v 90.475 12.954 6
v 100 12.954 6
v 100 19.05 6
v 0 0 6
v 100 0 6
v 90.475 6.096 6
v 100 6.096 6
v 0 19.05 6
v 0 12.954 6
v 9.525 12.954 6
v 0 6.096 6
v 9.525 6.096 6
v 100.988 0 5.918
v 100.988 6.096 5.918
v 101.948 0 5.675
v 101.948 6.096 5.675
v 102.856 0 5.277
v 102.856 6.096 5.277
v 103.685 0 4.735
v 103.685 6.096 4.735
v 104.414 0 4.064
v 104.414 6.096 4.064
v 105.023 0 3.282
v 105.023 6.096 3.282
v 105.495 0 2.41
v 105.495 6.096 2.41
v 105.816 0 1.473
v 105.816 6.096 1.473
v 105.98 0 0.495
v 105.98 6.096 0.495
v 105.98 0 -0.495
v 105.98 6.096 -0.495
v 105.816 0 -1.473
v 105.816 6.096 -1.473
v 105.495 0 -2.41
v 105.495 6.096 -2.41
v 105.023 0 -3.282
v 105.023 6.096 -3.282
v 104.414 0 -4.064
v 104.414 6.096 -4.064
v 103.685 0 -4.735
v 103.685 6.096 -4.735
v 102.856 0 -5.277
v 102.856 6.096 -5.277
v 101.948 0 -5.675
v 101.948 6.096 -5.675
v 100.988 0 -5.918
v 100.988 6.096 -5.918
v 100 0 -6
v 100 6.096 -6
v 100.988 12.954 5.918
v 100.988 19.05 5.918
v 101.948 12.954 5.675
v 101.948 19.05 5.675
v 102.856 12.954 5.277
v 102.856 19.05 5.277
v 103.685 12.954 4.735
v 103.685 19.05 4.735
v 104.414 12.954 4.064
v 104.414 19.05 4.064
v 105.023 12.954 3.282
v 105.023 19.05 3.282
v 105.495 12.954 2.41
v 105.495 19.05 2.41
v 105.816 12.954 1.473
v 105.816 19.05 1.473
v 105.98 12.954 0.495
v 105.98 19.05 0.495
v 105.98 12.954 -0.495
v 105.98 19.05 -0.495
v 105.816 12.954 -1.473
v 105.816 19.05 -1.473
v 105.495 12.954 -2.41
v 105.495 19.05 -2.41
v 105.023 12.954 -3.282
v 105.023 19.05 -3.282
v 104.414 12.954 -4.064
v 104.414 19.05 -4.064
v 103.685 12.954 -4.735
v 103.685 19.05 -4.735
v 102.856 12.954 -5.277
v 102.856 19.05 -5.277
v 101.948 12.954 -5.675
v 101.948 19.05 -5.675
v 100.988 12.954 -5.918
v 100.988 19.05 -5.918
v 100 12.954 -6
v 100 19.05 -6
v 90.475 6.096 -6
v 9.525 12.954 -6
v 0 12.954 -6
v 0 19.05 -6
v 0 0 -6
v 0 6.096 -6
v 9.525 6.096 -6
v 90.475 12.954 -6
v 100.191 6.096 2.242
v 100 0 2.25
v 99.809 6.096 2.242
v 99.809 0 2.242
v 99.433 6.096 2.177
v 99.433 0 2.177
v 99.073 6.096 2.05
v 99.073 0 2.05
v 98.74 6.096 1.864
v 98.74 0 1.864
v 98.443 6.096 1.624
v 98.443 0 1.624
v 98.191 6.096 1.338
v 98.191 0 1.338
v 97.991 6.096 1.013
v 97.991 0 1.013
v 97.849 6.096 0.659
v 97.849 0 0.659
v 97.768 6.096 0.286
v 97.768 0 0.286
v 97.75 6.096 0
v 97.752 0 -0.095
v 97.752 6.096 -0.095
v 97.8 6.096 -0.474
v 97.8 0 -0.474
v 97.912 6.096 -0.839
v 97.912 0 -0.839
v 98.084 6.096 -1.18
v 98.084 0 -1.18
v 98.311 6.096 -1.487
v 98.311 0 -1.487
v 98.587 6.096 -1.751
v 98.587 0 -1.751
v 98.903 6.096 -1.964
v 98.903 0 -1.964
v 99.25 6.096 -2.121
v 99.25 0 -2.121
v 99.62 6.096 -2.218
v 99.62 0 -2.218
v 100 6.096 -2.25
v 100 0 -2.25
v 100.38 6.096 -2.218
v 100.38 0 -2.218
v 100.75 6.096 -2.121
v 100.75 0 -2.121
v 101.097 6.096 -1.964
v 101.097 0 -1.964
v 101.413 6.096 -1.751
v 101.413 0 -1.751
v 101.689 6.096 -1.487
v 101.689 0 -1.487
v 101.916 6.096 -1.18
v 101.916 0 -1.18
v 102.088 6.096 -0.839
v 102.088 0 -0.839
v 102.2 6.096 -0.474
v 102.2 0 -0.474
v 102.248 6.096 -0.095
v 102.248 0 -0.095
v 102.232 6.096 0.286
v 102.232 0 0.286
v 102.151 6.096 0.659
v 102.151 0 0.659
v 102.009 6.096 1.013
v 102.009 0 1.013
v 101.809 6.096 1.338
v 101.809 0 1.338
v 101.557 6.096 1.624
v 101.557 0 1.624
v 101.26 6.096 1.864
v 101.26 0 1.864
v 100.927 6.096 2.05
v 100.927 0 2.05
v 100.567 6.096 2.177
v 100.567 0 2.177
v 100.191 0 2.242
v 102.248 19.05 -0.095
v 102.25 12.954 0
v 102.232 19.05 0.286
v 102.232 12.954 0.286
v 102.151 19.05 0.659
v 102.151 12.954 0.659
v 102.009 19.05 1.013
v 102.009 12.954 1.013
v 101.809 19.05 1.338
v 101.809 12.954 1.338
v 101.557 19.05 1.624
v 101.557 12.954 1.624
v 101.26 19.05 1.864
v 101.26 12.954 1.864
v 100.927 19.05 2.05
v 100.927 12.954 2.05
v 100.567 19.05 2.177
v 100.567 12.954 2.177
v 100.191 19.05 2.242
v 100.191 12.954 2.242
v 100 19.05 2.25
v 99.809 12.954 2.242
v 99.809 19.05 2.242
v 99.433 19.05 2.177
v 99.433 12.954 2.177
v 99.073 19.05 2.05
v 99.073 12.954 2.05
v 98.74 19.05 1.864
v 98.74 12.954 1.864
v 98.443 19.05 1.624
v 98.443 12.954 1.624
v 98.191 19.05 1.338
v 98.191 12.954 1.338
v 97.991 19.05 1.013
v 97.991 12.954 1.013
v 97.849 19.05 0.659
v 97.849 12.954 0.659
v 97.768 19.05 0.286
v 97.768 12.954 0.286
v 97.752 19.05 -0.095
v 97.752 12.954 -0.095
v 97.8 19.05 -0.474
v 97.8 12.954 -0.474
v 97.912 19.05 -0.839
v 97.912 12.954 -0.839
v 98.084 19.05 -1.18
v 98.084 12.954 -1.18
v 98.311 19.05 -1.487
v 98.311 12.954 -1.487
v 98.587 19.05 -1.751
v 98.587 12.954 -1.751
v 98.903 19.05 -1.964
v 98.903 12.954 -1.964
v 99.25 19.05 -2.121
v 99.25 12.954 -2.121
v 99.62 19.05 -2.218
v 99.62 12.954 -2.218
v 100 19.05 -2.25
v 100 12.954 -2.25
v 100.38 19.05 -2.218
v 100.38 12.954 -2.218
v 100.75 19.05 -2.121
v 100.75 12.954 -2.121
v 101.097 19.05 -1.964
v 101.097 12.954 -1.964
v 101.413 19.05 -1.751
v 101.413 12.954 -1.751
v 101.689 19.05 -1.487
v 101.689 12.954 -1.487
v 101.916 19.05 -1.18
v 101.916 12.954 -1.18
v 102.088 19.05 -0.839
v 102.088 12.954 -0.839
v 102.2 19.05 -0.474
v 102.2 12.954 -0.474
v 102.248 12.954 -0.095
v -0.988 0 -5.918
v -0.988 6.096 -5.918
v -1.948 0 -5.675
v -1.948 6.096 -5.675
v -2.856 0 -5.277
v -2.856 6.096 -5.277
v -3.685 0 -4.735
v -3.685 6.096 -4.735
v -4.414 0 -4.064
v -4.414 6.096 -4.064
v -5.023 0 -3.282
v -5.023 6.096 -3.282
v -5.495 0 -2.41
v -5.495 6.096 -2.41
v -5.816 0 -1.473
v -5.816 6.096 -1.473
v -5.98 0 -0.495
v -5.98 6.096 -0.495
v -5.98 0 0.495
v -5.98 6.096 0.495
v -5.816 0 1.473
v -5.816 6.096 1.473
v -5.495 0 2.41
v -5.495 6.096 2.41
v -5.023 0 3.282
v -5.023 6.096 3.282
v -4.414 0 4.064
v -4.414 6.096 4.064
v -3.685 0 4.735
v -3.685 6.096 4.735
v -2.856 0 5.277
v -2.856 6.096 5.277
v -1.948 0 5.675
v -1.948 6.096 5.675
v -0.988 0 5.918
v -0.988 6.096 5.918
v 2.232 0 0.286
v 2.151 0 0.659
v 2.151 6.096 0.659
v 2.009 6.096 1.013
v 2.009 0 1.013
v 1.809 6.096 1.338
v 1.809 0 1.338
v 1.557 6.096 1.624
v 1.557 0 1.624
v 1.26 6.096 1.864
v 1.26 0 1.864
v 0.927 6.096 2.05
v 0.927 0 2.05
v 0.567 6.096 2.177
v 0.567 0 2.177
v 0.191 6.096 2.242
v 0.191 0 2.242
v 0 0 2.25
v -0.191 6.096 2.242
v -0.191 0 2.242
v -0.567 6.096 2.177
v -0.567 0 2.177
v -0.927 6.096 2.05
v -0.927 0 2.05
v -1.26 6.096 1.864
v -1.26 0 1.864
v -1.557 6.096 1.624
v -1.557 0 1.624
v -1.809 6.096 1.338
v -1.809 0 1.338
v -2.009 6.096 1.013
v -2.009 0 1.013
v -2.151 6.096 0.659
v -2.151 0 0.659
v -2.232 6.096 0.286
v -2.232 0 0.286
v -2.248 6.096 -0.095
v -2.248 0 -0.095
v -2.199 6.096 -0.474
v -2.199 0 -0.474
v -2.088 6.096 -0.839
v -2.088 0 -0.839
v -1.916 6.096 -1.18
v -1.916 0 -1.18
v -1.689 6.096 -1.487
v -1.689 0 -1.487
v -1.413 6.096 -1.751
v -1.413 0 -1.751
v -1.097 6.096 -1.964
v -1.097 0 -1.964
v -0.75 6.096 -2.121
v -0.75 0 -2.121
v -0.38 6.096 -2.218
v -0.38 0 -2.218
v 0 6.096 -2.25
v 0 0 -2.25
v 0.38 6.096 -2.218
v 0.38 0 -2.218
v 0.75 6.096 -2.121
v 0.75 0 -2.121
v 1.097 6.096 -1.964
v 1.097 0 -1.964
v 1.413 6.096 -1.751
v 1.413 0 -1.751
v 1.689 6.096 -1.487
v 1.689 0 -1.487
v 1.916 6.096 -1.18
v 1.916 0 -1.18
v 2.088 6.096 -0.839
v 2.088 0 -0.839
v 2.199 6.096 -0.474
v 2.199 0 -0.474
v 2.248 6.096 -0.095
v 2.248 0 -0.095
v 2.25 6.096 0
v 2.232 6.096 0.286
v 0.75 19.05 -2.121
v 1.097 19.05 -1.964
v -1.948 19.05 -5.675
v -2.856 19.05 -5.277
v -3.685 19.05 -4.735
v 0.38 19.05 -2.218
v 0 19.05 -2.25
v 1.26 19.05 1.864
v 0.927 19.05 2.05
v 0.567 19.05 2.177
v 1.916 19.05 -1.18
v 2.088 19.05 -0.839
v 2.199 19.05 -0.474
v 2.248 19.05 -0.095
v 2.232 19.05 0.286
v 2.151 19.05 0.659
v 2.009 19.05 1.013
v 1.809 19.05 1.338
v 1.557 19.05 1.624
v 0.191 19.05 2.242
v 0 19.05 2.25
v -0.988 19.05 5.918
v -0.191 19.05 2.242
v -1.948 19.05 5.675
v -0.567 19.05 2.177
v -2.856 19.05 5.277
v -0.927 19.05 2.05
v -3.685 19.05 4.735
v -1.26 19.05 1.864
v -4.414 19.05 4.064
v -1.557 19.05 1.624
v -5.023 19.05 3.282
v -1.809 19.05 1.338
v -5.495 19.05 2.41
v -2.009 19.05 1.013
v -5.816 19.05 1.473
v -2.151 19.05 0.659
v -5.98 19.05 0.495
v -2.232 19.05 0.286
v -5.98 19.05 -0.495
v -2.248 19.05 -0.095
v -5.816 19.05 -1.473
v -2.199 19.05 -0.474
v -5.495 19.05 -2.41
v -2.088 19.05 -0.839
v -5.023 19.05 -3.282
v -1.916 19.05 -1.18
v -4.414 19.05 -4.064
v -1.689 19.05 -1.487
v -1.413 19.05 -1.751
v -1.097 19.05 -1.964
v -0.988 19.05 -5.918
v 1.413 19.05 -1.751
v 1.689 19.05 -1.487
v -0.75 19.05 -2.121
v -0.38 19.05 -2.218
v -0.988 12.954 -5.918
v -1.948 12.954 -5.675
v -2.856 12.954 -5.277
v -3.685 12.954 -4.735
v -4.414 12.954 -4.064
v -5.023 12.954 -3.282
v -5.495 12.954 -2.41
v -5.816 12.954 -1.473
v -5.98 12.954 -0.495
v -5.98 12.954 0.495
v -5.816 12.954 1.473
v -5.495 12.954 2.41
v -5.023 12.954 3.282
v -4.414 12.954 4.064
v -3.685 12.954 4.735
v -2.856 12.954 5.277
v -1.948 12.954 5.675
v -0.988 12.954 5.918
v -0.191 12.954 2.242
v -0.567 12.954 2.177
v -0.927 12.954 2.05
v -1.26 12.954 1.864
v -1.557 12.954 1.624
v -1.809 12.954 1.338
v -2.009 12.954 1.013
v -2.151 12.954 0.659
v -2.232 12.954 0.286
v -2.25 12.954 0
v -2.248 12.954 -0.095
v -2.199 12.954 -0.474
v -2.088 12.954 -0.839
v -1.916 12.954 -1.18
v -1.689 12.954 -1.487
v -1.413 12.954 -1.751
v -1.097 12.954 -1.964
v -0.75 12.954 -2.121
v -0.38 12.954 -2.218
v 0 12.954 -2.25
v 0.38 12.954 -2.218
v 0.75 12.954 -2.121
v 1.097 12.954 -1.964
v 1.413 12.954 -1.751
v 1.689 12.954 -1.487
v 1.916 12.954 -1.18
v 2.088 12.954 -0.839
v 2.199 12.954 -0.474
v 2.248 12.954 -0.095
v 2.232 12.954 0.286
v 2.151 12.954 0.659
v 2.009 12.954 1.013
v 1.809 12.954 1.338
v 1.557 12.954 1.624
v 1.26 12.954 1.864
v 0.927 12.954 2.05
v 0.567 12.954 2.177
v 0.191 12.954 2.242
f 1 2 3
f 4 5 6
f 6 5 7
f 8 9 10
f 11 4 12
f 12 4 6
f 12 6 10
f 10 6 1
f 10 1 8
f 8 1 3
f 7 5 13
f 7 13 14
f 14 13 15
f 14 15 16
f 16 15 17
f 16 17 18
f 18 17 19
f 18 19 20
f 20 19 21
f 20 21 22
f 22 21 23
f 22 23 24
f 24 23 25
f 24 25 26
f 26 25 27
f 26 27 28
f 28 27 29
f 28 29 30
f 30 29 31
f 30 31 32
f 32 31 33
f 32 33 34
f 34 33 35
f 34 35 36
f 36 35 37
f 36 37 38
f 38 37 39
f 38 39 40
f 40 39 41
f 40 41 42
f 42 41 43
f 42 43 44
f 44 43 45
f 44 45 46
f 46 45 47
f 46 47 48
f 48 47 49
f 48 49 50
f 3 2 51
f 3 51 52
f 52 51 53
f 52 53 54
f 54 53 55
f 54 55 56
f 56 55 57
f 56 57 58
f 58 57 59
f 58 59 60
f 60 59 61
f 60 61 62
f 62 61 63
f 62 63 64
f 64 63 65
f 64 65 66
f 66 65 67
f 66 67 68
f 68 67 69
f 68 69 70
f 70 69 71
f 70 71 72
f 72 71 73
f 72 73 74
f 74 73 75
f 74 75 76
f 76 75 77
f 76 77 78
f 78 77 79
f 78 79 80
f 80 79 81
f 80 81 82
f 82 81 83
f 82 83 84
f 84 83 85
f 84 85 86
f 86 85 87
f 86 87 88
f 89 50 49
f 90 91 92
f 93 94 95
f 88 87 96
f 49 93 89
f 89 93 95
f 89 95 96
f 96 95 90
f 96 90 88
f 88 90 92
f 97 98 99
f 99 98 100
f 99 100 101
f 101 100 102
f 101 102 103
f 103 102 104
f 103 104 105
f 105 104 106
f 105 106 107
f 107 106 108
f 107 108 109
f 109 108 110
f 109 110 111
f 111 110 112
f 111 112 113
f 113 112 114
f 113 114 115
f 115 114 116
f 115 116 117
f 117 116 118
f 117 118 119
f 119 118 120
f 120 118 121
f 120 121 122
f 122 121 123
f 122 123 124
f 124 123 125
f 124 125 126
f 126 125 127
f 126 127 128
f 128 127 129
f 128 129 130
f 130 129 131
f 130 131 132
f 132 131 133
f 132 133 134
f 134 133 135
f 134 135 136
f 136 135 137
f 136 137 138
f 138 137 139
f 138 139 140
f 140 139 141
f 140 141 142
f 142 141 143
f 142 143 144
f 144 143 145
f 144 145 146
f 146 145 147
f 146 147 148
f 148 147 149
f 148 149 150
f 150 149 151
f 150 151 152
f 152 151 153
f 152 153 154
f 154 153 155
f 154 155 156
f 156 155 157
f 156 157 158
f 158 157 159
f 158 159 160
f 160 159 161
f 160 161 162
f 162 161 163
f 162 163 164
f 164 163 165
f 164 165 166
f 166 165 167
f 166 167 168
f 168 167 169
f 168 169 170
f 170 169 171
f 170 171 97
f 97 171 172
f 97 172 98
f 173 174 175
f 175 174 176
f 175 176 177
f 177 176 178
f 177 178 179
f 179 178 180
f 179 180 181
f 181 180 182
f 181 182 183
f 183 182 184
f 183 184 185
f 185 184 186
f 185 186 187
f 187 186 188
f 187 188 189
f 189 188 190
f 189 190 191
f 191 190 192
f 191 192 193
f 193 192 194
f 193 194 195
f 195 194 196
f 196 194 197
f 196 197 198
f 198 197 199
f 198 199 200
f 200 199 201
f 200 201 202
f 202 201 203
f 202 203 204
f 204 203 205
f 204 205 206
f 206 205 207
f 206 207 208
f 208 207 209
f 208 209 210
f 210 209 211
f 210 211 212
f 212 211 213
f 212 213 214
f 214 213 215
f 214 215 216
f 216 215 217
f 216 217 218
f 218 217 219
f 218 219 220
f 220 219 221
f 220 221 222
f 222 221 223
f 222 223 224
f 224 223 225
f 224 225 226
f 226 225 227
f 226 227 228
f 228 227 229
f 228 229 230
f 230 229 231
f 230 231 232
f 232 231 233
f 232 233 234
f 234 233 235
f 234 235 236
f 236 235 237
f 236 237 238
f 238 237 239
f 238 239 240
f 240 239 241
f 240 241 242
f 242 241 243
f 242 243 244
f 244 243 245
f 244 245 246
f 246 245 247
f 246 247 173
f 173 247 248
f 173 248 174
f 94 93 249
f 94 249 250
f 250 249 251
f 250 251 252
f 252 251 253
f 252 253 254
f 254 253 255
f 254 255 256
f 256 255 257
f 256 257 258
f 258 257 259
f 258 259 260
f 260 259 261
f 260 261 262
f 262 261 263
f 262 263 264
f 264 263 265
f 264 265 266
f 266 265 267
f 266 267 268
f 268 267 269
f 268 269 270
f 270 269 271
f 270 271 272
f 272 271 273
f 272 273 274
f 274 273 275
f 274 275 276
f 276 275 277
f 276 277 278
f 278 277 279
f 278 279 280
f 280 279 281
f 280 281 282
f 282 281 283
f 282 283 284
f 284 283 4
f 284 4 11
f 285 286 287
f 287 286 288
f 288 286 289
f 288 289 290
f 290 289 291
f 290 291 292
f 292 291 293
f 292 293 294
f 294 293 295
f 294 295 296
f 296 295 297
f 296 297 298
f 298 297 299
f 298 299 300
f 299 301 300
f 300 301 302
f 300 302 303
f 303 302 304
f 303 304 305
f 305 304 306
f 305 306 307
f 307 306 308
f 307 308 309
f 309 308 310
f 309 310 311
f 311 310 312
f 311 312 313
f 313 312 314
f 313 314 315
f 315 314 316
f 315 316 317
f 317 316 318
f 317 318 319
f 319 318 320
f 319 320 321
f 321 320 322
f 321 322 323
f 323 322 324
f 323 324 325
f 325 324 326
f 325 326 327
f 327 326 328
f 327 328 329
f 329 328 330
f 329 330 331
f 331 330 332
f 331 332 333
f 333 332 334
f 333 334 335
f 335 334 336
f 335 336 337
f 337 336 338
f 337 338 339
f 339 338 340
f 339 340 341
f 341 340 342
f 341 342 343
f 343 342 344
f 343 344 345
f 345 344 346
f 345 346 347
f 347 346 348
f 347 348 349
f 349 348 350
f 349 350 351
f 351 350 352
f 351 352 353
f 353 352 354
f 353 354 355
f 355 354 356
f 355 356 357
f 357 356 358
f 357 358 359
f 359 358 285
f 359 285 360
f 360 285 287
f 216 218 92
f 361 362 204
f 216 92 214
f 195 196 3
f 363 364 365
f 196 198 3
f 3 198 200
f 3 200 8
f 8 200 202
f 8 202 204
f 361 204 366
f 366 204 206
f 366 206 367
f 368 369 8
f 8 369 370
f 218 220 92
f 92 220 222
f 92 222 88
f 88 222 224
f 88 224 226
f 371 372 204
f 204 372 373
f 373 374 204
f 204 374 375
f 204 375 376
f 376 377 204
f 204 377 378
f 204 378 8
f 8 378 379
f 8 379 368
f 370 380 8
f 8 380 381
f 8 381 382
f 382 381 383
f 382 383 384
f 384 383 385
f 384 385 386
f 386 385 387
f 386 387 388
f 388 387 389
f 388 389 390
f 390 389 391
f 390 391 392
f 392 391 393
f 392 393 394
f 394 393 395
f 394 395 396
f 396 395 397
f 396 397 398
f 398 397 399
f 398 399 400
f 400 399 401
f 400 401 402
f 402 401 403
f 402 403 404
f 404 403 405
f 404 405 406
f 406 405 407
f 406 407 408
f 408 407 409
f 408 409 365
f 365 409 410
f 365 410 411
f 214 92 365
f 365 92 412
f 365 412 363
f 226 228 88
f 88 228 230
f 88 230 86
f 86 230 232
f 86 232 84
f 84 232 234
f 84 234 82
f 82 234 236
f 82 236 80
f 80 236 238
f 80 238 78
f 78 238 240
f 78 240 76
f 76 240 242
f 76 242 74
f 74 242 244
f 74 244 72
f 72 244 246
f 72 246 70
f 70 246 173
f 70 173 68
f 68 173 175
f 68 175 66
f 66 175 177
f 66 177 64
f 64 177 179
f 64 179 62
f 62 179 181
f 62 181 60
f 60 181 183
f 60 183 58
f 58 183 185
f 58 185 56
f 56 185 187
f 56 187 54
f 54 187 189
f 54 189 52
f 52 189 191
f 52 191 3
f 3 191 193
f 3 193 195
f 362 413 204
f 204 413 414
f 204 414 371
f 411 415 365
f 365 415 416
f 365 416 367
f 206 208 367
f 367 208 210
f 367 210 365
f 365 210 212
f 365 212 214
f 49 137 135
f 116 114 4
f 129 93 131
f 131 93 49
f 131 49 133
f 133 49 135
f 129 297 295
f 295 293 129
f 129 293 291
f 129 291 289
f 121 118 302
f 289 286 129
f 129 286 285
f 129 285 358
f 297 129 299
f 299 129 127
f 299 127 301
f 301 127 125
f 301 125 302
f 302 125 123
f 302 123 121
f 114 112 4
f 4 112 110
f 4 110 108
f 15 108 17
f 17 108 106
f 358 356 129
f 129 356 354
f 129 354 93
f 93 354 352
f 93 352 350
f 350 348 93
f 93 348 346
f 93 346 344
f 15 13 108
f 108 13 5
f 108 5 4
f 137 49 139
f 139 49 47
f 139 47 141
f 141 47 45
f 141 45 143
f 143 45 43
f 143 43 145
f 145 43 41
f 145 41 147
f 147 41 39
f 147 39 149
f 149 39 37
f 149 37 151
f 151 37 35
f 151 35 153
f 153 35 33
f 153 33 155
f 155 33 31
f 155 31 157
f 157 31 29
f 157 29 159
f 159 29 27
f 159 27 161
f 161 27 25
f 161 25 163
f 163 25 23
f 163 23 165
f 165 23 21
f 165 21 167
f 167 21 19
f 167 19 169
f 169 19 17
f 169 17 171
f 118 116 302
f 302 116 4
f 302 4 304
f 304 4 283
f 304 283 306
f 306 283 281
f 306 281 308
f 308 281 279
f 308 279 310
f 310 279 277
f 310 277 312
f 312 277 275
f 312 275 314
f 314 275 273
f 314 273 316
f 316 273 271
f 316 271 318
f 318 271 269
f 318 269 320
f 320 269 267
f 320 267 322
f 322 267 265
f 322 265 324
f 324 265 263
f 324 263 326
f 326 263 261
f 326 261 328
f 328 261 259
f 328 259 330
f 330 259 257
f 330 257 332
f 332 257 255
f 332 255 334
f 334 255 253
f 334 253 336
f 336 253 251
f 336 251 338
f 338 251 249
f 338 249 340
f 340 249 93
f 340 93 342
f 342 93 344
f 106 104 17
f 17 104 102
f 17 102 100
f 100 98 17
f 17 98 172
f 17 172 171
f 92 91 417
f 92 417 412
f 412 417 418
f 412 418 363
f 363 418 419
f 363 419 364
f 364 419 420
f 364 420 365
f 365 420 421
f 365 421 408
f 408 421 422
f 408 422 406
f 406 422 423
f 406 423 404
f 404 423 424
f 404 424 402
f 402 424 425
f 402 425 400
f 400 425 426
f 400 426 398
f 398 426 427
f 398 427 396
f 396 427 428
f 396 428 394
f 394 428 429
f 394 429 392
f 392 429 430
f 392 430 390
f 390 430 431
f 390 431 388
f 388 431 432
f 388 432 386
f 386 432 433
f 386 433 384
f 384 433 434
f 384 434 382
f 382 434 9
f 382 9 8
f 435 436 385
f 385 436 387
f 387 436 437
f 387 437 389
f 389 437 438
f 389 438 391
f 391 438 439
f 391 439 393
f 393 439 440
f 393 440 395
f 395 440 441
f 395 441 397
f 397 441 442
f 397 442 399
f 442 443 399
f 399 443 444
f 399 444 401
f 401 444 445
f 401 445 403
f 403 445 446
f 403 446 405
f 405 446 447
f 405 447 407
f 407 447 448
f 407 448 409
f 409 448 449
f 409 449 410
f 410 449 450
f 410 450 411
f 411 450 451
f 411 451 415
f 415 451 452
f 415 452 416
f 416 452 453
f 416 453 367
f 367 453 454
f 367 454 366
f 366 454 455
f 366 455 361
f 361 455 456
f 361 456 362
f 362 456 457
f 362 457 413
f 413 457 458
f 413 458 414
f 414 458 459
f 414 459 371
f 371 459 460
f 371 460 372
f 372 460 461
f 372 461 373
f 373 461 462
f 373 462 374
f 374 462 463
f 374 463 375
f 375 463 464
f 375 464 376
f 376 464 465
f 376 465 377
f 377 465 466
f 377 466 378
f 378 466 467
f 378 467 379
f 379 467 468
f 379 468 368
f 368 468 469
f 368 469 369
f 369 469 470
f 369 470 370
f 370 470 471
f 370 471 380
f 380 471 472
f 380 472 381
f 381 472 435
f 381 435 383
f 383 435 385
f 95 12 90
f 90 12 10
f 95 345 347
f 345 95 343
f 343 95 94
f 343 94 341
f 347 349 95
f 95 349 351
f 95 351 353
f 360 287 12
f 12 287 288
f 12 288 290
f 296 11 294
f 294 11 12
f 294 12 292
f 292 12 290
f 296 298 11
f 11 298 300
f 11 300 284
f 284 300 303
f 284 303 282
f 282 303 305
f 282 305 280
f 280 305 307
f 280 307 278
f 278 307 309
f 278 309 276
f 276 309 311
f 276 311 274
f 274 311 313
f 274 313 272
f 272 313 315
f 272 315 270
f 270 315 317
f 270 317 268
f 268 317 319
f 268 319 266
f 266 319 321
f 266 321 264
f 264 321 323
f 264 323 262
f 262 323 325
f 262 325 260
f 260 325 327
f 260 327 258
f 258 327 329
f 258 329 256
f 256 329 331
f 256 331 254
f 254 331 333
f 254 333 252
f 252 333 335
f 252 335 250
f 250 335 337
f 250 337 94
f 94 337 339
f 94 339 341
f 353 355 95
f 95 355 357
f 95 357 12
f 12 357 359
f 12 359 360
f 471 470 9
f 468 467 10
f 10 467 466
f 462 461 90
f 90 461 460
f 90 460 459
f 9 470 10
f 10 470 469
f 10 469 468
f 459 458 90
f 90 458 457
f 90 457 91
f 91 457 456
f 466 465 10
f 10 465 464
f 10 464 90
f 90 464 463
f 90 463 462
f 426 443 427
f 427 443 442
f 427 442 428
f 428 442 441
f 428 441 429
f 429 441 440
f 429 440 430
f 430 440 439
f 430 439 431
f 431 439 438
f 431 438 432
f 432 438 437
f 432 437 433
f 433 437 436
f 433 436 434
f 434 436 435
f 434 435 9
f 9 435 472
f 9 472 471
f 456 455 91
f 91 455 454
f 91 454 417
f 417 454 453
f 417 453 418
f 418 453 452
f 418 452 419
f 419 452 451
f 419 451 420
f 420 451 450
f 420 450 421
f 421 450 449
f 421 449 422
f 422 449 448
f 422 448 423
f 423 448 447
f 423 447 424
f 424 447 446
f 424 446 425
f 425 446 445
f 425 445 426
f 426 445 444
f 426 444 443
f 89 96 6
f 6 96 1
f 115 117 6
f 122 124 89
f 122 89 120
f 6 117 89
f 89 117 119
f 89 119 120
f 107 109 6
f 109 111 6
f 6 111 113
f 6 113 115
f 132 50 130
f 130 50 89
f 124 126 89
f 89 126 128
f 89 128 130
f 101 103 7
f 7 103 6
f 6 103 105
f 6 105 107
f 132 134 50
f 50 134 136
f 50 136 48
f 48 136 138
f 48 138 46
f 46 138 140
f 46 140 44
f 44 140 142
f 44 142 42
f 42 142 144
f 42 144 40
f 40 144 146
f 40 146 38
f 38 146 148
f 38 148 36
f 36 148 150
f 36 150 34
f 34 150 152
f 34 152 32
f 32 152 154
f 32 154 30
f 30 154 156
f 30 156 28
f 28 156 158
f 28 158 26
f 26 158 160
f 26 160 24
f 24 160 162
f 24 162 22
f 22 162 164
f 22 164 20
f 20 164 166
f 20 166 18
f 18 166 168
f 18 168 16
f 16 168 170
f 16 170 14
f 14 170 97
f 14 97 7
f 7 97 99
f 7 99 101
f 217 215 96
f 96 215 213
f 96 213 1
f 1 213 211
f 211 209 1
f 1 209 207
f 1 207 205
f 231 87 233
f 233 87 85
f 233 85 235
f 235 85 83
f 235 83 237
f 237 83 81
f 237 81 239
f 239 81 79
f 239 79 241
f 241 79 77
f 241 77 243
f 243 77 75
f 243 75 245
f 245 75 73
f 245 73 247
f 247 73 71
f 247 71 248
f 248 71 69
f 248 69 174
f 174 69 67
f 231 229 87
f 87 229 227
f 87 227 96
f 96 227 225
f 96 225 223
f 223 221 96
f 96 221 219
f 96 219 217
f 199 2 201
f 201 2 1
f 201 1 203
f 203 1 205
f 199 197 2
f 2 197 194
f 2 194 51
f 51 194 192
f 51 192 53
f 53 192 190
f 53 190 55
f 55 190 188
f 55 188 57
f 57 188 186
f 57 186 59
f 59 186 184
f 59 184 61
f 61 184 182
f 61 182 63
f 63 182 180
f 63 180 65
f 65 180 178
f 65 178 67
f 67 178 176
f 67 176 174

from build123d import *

# Parameters (mm, degrees)
SKETCH1_R           = 2.25
BOSS_EXTRUDE1_DEPTH = 19.05
SKETCH2_W           = 23.025
SKETCH2_H           = 6.858
CUT_EXTRUDE1_DEPTH  = 19.05


with BuildPart() as part:
    # Sketch1 → Boss-Extrude1 (new body)
    with BuildSketch(Plane(origin=(0, 0, 0), x_dir=(1, 0, 0), z_dir=(0, 1, 0))):
        with BuildLine():
            Line((0, 6), (100, 6))
            ThreePointArc((100, 6), (106, 0), (100, -6))
            Line((100, -6), (0, -6))
            ThreePointArc((0, -6), (-6, 0), (0, 6))
        make_face()
        Circle(SKETCH1_R, mode=Mode.SUBTRACT)
        with Locations((100, 0)):
            Circle(SKETCH1_R, mode=Mode.SUBTRACT)
    extrude(amount=BOSS_EXTRUDE1_DEPTH)

    # Sketch2 → Cut-Extrude1 (cut)
    with BuildSketch(Plane(origin=(0, 0, -6), x_dir=(-1, 0, 0), z_dir=(0, 0, -1))):
        with Locations((1.9875, 9.525)):
            Rectangle(SKETCH2_W, SKETCH2_H)
    cut_extrude1 = extrude(amount=-CUT_EXTRUDE1_DEPTH, mode=Mode.SUBTRACT)

    # Mirror1: Cut-Extrude1 across plane
    add(cut_extrude1.mirror(Plane(origin=(50, 0, 0), x_dir=(0, 0, 1), z_dir=(1, 0, 0))), mode=Mode.SUBTRACT)


solid = part.part
